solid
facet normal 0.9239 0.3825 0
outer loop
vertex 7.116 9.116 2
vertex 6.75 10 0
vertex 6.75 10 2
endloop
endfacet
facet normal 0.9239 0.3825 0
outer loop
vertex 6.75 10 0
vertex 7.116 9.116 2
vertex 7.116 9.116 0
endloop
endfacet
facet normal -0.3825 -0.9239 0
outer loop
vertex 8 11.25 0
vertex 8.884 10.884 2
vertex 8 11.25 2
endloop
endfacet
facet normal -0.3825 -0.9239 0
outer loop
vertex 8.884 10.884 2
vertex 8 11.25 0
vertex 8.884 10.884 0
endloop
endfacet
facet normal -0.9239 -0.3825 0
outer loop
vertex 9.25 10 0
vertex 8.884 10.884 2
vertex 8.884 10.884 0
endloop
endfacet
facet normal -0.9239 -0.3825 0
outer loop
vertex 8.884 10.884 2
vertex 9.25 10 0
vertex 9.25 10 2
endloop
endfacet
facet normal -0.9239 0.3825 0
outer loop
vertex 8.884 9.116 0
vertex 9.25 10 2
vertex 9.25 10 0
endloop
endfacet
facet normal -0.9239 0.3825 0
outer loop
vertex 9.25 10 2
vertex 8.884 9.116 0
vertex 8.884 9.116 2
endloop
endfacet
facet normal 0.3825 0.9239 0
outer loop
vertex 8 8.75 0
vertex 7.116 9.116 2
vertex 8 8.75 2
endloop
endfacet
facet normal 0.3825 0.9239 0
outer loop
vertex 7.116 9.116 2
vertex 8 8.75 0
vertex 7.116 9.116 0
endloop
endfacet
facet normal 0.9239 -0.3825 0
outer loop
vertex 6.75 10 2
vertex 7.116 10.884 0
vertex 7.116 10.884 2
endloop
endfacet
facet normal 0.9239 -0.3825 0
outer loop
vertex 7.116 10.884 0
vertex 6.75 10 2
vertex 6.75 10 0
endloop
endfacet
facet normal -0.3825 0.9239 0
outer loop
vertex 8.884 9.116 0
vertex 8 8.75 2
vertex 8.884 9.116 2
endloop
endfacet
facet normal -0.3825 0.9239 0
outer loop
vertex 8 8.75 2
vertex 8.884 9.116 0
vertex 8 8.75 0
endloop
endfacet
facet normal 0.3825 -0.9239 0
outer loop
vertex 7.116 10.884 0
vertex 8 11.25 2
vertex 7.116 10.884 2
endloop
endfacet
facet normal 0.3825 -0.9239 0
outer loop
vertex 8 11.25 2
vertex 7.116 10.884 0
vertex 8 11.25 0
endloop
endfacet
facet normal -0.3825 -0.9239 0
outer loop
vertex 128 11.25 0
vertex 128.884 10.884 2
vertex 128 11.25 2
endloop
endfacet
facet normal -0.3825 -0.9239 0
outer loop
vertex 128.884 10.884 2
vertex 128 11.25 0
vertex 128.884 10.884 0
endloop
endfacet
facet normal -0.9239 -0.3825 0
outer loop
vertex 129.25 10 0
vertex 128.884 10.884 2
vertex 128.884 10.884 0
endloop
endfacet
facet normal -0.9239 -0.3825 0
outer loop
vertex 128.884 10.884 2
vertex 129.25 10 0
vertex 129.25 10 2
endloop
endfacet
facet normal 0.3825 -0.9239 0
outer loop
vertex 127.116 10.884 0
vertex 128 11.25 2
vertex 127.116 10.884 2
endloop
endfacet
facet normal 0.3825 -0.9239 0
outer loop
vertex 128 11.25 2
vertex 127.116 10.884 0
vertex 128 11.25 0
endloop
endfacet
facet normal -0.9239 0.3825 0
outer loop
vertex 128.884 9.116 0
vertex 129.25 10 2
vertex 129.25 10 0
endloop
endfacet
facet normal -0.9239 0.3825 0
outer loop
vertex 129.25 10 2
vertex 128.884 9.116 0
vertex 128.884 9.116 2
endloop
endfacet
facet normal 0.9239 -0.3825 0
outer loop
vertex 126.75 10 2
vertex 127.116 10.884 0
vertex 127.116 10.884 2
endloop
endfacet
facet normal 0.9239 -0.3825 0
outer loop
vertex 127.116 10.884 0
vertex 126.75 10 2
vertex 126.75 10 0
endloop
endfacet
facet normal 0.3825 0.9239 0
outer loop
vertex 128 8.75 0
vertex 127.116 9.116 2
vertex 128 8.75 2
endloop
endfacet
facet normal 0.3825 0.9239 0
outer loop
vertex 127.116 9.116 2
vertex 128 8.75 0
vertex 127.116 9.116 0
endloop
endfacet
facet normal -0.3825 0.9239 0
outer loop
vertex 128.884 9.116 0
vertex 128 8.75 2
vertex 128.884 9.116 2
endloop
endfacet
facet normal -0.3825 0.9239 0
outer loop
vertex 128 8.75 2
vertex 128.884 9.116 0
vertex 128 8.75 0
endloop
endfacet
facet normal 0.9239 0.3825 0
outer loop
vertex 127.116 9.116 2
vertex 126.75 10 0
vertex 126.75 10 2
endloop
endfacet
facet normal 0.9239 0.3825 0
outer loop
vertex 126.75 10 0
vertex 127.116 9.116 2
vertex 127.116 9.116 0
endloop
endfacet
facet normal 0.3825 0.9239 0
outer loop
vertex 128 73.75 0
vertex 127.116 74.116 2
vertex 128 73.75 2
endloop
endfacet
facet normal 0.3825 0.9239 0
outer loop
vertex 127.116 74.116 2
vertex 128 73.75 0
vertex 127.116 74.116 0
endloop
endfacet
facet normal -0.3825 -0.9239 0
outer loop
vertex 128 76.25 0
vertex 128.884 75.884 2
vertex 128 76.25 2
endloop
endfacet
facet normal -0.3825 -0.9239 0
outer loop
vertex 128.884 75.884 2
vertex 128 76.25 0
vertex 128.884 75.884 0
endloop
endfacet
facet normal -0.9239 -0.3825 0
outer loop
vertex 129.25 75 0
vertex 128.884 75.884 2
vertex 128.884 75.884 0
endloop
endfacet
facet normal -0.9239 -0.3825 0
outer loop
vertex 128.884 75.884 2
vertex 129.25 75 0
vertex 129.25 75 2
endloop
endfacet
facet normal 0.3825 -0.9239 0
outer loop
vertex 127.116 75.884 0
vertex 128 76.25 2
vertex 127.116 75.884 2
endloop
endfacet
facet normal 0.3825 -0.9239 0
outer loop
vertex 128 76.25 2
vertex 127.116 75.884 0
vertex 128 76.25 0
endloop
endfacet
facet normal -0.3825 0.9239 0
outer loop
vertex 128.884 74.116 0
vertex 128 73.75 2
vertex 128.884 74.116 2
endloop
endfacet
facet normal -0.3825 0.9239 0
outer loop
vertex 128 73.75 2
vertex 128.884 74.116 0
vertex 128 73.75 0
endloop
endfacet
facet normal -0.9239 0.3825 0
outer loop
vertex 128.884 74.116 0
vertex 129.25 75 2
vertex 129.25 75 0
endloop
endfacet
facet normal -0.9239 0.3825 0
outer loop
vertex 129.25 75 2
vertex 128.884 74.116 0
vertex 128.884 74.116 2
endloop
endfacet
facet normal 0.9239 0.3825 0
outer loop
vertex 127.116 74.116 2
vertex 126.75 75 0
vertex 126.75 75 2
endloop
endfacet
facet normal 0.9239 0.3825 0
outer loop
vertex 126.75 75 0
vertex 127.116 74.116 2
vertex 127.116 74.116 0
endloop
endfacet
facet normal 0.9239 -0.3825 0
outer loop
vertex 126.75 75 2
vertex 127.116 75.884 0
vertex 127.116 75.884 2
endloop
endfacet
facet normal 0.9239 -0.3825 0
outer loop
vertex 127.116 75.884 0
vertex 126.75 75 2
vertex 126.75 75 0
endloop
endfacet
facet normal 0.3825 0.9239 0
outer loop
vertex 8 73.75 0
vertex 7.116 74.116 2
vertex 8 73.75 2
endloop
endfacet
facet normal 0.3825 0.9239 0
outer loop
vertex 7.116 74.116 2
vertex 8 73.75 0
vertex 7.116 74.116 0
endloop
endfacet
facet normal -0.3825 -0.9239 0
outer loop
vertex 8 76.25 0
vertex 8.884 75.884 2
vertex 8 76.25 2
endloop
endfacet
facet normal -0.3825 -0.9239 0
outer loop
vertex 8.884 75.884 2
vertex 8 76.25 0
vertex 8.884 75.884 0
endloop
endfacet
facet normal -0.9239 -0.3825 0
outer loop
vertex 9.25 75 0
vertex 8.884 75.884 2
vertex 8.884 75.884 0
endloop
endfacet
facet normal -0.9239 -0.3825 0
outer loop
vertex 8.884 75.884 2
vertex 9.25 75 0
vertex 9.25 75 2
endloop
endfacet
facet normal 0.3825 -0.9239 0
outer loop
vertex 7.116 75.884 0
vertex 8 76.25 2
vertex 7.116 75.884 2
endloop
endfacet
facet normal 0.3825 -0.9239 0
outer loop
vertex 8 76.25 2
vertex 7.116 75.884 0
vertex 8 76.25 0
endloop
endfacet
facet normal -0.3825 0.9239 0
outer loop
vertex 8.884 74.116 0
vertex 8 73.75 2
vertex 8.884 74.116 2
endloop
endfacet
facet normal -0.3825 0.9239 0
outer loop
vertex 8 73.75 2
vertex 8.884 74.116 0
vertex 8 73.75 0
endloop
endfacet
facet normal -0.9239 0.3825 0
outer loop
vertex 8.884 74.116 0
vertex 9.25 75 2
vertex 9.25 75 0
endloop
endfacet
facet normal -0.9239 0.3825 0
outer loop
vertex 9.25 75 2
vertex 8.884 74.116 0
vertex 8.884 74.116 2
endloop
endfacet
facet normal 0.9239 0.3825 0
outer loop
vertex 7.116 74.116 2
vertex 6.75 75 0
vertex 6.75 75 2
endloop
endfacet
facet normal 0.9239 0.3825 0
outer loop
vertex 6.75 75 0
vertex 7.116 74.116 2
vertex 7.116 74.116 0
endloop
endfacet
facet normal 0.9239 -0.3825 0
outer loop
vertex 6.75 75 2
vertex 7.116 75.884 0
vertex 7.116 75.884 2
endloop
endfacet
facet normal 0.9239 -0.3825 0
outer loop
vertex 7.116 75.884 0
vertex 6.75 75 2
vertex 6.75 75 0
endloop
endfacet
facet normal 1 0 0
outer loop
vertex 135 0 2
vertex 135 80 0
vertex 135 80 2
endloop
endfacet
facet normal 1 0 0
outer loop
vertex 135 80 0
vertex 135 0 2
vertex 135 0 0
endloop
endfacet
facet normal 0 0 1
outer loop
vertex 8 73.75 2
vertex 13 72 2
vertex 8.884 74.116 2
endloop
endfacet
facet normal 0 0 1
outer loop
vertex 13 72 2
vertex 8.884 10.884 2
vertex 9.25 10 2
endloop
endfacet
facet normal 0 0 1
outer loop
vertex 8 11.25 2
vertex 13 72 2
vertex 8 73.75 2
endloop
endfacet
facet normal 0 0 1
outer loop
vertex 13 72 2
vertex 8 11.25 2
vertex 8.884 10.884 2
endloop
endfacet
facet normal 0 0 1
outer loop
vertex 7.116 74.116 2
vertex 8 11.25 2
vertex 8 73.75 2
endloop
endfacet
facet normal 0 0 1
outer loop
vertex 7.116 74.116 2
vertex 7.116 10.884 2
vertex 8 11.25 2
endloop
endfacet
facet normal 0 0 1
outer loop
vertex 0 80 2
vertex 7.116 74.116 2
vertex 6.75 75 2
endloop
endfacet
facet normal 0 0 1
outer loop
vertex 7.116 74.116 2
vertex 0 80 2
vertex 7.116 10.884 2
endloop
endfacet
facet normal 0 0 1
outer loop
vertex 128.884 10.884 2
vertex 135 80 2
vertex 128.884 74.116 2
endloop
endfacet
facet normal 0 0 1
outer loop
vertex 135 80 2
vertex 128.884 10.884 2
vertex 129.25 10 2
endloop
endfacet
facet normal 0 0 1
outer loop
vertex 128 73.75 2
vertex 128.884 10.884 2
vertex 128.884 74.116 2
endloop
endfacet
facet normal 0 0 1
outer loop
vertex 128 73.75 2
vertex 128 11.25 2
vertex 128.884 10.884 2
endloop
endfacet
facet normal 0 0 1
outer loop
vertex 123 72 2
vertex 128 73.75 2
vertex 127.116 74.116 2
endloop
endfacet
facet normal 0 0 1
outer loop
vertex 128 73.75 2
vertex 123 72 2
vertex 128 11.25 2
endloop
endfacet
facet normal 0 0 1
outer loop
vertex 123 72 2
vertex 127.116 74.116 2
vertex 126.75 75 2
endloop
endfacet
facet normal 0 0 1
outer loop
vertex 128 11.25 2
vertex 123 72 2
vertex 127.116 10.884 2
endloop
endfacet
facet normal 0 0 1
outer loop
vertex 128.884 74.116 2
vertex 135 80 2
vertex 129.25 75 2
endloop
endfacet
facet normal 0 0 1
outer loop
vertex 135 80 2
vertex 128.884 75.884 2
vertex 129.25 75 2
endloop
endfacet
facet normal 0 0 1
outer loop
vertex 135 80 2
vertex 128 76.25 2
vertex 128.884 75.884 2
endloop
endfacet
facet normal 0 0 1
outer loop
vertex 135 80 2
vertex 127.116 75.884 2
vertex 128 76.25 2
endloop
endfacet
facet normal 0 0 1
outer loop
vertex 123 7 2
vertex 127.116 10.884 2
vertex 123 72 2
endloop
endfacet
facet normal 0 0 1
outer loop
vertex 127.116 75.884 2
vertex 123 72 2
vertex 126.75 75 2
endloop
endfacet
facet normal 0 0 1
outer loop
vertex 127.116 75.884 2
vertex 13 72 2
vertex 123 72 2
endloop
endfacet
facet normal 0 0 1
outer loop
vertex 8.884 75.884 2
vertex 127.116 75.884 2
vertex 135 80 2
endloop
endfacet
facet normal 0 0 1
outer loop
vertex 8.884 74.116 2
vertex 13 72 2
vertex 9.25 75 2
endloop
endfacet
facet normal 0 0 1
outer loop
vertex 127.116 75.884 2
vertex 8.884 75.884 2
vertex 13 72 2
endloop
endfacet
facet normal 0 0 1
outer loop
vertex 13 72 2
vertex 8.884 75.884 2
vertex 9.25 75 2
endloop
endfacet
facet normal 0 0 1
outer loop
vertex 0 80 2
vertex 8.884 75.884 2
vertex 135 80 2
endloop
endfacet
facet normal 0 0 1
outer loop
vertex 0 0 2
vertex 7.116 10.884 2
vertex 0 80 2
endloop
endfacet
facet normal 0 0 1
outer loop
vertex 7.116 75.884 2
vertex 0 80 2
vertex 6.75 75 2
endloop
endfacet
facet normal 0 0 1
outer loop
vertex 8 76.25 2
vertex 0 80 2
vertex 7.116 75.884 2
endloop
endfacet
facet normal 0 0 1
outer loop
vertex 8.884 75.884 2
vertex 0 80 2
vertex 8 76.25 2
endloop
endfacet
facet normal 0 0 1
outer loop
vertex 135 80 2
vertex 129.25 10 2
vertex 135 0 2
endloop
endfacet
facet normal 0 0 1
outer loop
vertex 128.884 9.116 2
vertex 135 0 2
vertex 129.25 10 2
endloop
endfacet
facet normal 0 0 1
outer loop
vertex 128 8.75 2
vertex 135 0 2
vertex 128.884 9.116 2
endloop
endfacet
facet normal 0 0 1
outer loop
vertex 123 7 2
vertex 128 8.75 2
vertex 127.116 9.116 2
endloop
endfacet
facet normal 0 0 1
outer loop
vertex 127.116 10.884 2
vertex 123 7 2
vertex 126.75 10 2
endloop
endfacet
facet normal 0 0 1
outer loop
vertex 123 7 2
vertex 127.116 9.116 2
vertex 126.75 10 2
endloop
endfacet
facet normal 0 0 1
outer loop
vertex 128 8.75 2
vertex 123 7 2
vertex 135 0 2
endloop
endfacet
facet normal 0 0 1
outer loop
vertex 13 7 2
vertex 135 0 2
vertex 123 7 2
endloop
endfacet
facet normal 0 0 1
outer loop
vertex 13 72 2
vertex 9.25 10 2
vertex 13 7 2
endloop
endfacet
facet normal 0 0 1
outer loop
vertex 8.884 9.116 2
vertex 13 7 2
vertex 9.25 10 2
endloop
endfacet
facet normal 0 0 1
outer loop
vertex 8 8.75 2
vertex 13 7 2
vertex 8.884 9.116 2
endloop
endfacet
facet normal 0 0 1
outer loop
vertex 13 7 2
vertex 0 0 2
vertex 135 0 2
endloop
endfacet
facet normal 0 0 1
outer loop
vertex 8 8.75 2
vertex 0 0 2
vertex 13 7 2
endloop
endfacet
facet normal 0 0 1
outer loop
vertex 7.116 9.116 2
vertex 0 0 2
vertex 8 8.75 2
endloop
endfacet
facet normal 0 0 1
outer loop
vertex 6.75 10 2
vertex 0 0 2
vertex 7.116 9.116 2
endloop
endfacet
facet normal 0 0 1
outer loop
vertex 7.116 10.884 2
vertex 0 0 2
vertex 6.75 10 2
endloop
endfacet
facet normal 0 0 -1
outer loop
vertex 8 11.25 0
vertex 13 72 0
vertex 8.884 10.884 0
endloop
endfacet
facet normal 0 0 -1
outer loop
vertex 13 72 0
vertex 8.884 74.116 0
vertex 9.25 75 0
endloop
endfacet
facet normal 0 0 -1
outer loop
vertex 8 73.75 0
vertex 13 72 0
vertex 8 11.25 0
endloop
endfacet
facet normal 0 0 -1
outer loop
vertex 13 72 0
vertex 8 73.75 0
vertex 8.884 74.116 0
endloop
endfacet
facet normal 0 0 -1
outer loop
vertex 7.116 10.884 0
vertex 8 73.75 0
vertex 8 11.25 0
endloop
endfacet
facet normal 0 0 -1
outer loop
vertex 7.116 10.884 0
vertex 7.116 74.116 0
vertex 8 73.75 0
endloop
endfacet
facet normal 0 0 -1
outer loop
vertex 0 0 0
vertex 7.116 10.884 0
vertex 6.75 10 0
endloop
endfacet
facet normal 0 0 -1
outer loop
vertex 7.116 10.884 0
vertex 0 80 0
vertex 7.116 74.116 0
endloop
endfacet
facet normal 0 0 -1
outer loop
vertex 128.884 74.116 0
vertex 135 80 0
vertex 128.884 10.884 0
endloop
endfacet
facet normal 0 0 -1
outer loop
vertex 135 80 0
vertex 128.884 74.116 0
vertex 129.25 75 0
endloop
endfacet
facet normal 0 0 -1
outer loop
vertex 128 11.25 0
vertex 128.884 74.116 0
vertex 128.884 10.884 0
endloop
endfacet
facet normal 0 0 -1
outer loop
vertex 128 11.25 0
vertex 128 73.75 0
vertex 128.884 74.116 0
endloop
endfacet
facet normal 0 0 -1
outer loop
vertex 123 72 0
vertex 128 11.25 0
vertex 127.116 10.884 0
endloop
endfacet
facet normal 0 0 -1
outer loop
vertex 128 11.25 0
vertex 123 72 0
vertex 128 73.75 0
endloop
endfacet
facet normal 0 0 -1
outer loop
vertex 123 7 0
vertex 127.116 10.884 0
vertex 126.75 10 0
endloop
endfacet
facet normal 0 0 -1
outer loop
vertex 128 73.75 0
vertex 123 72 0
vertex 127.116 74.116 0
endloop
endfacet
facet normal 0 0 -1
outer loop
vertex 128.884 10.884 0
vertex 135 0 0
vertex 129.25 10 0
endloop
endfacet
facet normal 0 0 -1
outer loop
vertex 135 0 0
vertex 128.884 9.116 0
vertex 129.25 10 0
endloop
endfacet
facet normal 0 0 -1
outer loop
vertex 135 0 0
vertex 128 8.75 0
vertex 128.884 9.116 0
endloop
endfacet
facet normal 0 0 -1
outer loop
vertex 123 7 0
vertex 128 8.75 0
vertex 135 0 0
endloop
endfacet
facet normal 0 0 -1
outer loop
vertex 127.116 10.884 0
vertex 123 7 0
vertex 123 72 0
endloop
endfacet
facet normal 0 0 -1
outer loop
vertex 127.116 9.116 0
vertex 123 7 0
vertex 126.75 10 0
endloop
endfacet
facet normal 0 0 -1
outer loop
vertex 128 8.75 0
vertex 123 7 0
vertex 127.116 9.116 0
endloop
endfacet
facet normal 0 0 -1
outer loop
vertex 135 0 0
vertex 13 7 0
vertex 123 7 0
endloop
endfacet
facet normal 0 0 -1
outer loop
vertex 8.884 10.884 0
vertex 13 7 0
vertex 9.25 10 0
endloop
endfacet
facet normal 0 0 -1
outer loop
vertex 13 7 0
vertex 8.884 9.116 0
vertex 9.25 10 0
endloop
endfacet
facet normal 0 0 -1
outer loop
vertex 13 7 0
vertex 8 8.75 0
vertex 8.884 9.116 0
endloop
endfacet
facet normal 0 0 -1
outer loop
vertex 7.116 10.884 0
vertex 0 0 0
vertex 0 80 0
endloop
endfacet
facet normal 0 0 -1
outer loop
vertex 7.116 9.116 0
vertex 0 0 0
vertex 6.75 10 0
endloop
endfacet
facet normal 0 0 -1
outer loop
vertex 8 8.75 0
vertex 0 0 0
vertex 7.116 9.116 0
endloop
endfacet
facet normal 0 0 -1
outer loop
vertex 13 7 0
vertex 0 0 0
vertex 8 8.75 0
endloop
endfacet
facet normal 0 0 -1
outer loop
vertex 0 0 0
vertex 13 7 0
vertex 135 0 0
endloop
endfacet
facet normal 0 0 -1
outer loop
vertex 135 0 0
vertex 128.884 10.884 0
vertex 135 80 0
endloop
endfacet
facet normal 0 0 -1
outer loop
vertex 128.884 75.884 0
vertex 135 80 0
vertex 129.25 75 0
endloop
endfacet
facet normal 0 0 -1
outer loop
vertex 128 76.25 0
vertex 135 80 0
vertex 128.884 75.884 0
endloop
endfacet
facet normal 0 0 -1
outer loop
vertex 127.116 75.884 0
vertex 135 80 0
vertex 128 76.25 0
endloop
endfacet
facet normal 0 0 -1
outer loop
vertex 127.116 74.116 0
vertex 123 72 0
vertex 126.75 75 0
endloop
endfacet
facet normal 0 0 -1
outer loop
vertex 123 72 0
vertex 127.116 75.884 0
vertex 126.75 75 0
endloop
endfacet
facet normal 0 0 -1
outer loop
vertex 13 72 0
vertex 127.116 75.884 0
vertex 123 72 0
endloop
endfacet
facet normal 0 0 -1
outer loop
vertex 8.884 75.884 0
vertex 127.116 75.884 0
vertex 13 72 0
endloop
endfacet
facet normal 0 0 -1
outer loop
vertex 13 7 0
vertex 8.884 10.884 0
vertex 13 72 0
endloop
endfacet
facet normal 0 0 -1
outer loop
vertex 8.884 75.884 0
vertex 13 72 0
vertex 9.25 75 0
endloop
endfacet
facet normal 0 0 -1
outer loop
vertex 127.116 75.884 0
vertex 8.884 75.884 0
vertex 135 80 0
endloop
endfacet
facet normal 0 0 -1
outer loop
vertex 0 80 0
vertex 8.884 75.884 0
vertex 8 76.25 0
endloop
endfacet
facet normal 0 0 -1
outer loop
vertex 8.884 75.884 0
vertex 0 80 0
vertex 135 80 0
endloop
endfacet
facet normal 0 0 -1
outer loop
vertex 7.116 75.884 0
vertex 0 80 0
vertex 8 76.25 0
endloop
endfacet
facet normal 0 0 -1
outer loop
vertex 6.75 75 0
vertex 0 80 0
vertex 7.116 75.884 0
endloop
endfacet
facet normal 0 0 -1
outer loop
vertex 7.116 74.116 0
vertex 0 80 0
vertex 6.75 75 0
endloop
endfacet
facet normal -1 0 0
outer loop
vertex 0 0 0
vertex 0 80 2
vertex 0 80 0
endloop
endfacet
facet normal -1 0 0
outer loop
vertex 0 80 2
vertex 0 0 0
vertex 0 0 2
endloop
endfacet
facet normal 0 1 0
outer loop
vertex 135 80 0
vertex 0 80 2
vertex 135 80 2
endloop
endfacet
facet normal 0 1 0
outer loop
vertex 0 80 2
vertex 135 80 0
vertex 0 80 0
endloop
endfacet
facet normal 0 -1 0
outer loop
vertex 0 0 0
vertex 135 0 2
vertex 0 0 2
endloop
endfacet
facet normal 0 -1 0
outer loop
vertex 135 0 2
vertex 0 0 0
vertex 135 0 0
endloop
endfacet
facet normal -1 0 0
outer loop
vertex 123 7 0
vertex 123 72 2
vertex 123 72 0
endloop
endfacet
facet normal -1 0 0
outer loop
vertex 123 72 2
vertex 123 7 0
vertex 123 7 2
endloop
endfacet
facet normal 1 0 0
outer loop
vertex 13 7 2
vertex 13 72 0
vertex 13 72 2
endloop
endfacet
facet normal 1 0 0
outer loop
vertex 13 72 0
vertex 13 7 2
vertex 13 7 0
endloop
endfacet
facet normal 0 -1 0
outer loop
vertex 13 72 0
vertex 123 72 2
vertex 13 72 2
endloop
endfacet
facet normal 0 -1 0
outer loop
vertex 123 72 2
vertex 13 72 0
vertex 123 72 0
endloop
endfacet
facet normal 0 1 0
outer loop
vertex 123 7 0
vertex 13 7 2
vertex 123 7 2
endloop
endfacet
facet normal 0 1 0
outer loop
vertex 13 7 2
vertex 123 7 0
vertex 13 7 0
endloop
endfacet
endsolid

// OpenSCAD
difference() {
 //   hull () {
 //       cube([135,90,1]);
        cube([135,80,2]);
        translate([13,7,-1])
        cube([110,65,4]);
 
    //}
    cylinderHoles();
}

module cylinderHoles () {
    translate([8,10,-6.1])
    union() {
        translate([0,0,6])
        cylinderHole();
        translate([120,0,6])
        cylinderHole();
        translate([120,65,6])
        cylinderHole();
        translate([0,65,6])
        cylinderHole();
    }
}

module cylinderHole () {
    cylinder(h=3, r=1.25, $fn=8);
}
